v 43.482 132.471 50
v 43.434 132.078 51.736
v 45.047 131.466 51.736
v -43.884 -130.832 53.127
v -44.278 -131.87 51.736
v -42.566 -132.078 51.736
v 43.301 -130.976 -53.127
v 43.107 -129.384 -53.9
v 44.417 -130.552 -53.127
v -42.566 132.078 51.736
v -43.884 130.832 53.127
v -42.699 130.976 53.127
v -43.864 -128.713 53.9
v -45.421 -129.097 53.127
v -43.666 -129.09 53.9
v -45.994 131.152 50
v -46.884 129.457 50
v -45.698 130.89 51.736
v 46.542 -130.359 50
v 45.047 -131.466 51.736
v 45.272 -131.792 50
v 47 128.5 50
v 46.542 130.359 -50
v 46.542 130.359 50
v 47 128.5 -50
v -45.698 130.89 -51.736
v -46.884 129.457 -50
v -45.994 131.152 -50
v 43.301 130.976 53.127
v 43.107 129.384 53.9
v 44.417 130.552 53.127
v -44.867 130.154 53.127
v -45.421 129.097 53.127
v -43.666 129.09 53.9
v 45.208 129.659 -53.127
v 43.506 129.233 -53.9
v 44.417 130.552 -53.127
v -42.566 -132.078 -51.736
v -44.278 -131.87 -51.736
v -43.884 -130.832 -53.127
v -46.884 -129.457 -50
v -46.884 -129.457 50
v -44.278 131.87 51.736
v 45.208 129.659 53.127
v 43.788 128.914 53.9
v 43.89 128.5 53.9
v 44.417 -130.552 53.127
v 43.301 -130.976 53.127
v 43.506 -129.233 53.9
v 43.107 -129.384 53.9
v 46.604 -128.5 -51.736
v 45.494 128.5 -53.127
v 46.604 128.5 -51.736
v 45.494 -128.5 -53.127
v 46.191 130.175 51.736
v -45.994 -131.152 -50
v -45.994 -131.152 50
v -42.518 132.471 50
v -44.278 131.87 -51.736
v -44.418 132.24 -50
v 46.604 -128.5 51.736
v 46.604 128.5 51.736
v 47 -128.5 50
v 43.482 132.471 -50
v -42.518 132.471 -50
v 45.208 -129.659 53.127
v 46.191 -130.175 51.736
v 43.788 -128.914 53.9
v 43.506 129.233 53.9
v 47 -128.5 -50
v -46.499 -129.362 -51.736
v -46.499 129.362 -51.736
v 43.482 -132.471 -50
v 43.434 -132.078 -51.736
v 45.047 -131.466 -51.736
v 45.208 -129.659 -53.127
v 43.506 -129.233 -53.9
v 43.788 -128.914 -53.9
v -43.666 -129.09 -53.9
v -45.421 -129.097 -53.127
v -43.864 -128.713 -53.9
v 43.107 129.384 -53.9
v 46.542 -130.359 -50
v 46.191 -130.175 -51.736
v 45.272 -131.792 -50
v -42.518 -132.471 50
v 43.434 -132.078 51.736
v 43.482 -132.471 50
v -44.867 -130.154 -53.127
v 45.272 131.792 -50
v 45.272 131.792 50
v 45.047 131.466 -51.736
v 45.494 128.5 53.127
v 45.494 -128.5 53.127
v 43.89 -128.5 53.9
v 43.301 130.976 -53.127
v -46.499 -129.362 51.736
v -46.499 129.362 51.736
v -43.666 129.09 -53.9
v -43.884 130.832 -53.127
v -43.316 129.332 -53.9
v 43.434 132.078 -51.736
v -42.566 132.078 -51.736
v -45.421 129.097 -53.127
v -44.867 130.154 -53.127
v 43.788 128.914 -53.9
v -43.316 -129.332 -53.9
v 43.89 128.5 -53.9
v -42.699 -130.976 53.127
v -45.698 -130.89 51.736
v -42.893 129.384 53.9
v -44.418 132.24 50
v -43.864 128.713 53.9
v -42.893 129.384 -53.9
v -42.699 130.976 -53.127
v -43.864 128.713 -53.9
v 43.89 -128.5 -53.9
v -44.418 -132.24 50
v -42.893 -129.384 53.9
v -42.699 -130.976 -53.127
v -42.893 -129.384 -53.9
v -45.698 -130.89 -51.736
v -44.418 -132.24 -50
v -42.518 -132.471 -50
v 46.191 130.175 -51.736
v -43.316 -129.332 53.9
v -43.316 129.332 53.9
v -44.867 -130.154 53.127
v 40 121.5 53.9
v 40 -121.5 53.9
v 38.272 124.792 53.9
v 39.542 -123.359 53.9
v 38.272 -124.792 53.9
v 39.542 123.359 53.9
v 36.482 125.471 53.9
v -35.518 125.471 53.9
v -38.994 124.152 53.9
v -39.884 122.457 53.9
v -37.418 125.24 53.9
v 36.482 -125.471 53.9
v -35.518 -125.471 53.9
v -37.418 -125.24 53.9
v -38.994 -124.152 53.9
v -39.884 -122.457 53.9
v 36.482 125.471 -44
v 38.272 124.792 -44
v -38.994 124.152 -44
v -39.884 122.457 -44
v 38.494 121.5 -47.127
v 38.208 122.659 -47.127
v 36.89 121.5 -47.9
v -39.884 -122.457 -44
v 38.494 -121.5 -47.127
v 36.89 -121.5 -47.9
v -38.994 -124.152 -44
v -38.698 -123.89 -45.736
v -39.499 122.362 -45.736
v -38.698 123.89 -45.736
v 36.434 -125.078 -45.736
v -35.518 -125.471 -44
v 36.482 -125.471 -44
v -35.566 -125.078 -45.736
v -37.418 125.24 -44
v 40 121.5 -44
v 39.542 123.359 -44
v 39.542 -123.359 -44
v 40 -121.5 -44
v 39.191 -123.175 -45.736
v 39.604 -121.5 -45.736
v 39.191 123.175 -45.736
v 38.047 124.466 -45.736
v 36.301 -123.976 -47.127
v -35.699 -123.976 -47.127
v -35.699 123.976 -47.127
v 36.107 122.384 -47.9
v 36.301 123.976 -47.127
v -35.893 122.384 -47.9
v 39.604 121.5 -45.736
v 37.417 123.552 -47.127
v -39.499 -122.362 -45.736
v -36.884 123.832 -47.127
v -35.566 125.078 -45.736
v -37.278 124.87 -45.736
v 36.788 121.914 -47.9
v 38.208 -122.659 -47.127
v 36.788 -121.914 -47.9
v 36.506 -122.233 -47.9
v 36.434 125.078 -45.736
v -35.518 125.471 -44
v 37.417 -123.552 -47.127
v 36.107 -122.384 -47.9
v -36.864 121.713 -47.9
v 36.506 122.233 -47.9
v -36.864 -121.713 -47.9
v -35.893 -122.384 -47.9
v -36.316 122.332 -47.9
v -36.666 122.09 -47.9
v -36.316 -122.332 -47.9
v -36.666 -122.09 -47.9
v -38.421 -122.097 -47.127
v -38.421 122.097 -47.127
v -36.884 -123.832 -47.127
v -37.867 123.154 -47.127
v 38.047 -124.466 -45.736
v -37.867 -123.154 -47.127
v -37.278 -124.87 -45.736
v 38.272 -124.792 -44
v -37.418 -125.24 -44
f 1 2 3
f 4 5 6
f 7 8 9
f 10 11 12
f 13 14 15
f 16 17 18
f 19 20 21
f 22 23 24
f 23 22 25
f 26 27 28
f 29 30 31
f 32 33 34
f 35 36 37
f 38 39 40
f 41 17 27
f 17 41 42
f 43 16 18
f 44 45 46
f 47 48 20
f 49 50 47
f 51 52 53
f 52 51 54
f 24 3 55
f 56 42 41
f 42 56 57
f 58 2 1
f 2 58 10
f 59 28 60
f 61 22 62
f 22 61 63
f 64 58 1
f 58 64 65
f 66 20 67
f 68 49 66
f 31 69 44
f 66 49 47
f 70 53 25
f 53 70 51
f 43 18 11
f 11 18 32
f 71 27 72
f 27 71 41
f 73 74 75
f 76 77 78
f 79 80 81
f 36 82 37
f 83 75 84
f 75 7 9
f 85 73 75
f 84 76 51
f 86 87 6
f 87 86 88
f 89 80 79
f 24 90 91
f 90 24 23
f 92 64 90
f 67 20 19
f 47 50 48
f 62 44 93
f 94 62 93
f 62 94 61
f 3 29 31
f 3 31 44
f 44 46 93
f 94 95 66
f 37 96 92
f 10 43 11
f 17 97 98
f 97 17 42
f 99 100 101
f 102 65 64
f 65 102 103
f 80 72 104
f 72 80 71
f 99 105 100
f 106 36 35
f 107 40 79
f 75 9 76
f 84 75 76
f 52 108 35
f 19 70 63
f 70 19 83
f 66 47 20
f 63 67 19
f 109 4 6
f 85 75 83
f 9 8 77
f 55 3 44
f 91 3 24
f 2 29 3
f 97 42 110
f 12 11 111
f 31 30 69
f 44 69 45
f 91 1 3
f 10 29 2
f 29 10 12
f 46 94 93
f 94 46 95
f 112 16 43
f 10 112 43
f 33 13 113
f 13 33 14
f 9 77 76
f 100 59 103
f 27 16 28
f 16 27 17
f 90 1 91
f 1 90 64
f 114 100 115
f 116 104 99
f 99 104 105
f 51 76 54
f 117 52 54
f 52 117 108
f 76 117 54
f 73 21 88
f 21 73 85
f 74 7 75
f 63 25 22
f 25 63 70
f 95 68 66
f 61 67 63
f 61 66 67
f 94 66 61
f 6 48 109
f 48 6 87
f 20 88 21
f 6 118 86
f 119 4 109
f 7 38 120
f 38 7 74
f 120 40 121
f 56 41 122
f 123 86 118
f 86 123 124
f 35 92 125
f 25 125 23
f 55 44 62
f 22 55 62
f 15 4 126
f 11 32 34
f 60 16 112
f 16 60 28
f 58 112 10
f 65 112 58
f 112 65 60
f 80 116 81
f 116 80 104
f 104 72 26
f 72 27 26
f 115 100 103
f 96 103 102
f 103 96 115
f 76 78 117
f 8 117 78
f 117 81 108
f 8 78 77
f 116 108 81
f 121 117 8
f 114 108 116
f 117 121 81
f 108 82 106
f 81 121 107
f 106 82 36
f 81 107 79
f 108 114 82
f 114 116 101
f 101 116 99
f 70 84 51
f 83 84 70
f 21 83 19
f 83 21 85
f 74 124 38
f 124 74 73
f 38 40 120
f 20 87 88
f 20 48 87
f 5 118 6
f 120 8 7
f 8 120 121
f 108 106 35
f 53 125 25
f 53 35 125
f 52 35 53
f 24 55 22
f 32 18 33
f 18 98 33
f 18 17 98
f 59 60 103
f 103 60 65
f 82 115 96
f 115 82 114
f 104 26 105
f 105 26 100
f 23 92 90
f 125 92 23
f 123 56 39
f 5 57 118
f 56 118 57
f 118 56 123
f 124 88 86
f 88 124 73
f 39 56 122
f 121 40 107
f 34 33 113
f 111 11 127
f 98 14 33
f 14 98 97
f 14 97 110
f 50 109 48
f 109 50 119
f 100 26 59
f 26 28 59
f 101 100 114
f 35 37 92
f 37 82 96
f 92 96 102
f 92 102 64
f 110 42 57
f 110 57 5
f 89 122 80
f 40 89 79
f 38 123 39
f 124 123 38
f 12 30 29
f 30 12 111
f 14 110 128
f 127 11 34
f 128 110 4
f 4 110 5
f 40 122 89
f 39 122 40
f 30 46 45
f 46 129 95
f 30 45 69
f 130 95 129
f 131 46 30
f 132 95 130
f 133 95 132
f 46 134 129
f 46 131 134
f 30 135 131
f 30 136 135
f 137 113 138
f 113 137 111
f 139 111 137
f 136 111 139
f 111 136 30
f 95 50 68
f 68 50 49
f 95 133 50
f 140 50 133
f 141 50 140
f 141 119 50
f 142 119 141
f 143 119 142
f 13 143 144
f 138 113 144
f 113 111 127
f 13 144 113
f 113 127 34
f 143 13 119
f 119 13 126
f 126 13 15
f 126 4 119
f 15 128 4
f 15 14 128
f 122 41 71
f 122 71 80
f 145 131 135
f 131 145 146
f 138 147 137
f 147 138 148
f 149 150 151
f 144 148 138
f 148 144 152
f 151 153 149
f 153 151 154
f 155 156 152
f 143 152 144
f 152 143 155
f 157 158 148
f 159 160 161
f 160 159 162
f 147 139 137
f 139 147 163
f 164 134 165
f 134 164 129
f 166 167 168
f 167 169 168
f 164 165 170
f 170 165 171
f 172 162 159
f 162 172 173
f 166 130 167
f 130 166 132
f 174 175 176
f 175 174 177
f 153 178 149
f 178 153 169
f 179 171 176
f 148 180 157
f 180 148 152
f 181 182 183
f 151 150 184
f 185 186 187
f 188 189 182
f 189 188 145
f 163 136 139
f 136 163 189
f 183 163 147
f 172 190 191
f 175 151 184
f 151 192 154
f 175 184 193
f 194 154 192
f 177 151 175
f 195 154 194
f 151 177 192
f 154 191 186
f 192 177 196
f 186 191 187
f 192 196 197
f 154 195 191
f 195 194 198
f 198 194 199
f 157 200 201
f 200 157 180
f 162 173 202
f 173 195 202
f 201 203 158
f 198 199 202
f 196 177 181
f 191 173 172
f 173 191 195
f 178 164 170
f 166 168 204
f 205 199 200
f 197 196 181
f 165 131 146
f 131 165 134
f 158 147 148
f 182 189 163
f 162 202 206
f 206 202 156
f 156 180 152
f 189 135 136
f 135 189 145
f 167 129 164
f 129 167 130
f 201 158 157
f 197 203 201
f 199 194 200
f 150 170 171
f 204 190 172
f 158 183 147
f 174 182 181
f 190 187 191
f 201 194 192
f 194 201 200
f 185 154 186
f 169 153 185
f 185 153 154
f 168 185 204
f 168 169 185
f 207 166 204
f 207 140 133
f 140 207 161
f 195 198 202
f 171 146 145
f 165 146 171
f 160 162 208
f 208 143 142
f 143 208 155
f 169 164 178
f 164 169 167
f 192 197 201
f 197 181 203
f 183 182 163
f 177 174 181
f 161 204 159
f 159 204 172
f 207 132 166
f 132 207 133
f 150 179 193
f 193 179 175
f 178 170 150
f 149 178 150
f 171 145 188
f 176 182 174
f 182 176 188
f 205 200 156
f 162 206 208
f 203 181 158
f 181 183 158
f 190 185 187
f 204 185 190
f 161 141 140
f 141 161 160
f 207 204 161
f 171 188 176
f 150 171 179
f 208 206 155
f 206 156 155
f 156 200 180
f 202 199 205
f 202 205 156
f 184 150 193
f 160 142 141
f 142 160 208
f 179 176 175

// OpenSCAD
wall_thickness=3;
fillet=4;
outer_width=100-(2*fillet + 2*wall_thickness);
inner_width=outer_width-2*wall_thickness-2*fillet;
outer_depth=265-2*fillet;
inner_depth=outer_depth-2*wall_thickness-2*fillet;
height=100;
handle_length=90;
bottom_thickness=wall_thickness*2;
center=true;

module inner() {
  minkowski() {
    translate([0,0,bottom_thickness]) {
      cube([inner_width, inner_depth, height], center);
    }
    sphere(fillet);
  }
};

module outer() {
  minkowski() {
    cube([outer_width, outer_depth, height], center);
    sphere(fillet);
  }
}

difference() {
  outer();
  inner();
};
